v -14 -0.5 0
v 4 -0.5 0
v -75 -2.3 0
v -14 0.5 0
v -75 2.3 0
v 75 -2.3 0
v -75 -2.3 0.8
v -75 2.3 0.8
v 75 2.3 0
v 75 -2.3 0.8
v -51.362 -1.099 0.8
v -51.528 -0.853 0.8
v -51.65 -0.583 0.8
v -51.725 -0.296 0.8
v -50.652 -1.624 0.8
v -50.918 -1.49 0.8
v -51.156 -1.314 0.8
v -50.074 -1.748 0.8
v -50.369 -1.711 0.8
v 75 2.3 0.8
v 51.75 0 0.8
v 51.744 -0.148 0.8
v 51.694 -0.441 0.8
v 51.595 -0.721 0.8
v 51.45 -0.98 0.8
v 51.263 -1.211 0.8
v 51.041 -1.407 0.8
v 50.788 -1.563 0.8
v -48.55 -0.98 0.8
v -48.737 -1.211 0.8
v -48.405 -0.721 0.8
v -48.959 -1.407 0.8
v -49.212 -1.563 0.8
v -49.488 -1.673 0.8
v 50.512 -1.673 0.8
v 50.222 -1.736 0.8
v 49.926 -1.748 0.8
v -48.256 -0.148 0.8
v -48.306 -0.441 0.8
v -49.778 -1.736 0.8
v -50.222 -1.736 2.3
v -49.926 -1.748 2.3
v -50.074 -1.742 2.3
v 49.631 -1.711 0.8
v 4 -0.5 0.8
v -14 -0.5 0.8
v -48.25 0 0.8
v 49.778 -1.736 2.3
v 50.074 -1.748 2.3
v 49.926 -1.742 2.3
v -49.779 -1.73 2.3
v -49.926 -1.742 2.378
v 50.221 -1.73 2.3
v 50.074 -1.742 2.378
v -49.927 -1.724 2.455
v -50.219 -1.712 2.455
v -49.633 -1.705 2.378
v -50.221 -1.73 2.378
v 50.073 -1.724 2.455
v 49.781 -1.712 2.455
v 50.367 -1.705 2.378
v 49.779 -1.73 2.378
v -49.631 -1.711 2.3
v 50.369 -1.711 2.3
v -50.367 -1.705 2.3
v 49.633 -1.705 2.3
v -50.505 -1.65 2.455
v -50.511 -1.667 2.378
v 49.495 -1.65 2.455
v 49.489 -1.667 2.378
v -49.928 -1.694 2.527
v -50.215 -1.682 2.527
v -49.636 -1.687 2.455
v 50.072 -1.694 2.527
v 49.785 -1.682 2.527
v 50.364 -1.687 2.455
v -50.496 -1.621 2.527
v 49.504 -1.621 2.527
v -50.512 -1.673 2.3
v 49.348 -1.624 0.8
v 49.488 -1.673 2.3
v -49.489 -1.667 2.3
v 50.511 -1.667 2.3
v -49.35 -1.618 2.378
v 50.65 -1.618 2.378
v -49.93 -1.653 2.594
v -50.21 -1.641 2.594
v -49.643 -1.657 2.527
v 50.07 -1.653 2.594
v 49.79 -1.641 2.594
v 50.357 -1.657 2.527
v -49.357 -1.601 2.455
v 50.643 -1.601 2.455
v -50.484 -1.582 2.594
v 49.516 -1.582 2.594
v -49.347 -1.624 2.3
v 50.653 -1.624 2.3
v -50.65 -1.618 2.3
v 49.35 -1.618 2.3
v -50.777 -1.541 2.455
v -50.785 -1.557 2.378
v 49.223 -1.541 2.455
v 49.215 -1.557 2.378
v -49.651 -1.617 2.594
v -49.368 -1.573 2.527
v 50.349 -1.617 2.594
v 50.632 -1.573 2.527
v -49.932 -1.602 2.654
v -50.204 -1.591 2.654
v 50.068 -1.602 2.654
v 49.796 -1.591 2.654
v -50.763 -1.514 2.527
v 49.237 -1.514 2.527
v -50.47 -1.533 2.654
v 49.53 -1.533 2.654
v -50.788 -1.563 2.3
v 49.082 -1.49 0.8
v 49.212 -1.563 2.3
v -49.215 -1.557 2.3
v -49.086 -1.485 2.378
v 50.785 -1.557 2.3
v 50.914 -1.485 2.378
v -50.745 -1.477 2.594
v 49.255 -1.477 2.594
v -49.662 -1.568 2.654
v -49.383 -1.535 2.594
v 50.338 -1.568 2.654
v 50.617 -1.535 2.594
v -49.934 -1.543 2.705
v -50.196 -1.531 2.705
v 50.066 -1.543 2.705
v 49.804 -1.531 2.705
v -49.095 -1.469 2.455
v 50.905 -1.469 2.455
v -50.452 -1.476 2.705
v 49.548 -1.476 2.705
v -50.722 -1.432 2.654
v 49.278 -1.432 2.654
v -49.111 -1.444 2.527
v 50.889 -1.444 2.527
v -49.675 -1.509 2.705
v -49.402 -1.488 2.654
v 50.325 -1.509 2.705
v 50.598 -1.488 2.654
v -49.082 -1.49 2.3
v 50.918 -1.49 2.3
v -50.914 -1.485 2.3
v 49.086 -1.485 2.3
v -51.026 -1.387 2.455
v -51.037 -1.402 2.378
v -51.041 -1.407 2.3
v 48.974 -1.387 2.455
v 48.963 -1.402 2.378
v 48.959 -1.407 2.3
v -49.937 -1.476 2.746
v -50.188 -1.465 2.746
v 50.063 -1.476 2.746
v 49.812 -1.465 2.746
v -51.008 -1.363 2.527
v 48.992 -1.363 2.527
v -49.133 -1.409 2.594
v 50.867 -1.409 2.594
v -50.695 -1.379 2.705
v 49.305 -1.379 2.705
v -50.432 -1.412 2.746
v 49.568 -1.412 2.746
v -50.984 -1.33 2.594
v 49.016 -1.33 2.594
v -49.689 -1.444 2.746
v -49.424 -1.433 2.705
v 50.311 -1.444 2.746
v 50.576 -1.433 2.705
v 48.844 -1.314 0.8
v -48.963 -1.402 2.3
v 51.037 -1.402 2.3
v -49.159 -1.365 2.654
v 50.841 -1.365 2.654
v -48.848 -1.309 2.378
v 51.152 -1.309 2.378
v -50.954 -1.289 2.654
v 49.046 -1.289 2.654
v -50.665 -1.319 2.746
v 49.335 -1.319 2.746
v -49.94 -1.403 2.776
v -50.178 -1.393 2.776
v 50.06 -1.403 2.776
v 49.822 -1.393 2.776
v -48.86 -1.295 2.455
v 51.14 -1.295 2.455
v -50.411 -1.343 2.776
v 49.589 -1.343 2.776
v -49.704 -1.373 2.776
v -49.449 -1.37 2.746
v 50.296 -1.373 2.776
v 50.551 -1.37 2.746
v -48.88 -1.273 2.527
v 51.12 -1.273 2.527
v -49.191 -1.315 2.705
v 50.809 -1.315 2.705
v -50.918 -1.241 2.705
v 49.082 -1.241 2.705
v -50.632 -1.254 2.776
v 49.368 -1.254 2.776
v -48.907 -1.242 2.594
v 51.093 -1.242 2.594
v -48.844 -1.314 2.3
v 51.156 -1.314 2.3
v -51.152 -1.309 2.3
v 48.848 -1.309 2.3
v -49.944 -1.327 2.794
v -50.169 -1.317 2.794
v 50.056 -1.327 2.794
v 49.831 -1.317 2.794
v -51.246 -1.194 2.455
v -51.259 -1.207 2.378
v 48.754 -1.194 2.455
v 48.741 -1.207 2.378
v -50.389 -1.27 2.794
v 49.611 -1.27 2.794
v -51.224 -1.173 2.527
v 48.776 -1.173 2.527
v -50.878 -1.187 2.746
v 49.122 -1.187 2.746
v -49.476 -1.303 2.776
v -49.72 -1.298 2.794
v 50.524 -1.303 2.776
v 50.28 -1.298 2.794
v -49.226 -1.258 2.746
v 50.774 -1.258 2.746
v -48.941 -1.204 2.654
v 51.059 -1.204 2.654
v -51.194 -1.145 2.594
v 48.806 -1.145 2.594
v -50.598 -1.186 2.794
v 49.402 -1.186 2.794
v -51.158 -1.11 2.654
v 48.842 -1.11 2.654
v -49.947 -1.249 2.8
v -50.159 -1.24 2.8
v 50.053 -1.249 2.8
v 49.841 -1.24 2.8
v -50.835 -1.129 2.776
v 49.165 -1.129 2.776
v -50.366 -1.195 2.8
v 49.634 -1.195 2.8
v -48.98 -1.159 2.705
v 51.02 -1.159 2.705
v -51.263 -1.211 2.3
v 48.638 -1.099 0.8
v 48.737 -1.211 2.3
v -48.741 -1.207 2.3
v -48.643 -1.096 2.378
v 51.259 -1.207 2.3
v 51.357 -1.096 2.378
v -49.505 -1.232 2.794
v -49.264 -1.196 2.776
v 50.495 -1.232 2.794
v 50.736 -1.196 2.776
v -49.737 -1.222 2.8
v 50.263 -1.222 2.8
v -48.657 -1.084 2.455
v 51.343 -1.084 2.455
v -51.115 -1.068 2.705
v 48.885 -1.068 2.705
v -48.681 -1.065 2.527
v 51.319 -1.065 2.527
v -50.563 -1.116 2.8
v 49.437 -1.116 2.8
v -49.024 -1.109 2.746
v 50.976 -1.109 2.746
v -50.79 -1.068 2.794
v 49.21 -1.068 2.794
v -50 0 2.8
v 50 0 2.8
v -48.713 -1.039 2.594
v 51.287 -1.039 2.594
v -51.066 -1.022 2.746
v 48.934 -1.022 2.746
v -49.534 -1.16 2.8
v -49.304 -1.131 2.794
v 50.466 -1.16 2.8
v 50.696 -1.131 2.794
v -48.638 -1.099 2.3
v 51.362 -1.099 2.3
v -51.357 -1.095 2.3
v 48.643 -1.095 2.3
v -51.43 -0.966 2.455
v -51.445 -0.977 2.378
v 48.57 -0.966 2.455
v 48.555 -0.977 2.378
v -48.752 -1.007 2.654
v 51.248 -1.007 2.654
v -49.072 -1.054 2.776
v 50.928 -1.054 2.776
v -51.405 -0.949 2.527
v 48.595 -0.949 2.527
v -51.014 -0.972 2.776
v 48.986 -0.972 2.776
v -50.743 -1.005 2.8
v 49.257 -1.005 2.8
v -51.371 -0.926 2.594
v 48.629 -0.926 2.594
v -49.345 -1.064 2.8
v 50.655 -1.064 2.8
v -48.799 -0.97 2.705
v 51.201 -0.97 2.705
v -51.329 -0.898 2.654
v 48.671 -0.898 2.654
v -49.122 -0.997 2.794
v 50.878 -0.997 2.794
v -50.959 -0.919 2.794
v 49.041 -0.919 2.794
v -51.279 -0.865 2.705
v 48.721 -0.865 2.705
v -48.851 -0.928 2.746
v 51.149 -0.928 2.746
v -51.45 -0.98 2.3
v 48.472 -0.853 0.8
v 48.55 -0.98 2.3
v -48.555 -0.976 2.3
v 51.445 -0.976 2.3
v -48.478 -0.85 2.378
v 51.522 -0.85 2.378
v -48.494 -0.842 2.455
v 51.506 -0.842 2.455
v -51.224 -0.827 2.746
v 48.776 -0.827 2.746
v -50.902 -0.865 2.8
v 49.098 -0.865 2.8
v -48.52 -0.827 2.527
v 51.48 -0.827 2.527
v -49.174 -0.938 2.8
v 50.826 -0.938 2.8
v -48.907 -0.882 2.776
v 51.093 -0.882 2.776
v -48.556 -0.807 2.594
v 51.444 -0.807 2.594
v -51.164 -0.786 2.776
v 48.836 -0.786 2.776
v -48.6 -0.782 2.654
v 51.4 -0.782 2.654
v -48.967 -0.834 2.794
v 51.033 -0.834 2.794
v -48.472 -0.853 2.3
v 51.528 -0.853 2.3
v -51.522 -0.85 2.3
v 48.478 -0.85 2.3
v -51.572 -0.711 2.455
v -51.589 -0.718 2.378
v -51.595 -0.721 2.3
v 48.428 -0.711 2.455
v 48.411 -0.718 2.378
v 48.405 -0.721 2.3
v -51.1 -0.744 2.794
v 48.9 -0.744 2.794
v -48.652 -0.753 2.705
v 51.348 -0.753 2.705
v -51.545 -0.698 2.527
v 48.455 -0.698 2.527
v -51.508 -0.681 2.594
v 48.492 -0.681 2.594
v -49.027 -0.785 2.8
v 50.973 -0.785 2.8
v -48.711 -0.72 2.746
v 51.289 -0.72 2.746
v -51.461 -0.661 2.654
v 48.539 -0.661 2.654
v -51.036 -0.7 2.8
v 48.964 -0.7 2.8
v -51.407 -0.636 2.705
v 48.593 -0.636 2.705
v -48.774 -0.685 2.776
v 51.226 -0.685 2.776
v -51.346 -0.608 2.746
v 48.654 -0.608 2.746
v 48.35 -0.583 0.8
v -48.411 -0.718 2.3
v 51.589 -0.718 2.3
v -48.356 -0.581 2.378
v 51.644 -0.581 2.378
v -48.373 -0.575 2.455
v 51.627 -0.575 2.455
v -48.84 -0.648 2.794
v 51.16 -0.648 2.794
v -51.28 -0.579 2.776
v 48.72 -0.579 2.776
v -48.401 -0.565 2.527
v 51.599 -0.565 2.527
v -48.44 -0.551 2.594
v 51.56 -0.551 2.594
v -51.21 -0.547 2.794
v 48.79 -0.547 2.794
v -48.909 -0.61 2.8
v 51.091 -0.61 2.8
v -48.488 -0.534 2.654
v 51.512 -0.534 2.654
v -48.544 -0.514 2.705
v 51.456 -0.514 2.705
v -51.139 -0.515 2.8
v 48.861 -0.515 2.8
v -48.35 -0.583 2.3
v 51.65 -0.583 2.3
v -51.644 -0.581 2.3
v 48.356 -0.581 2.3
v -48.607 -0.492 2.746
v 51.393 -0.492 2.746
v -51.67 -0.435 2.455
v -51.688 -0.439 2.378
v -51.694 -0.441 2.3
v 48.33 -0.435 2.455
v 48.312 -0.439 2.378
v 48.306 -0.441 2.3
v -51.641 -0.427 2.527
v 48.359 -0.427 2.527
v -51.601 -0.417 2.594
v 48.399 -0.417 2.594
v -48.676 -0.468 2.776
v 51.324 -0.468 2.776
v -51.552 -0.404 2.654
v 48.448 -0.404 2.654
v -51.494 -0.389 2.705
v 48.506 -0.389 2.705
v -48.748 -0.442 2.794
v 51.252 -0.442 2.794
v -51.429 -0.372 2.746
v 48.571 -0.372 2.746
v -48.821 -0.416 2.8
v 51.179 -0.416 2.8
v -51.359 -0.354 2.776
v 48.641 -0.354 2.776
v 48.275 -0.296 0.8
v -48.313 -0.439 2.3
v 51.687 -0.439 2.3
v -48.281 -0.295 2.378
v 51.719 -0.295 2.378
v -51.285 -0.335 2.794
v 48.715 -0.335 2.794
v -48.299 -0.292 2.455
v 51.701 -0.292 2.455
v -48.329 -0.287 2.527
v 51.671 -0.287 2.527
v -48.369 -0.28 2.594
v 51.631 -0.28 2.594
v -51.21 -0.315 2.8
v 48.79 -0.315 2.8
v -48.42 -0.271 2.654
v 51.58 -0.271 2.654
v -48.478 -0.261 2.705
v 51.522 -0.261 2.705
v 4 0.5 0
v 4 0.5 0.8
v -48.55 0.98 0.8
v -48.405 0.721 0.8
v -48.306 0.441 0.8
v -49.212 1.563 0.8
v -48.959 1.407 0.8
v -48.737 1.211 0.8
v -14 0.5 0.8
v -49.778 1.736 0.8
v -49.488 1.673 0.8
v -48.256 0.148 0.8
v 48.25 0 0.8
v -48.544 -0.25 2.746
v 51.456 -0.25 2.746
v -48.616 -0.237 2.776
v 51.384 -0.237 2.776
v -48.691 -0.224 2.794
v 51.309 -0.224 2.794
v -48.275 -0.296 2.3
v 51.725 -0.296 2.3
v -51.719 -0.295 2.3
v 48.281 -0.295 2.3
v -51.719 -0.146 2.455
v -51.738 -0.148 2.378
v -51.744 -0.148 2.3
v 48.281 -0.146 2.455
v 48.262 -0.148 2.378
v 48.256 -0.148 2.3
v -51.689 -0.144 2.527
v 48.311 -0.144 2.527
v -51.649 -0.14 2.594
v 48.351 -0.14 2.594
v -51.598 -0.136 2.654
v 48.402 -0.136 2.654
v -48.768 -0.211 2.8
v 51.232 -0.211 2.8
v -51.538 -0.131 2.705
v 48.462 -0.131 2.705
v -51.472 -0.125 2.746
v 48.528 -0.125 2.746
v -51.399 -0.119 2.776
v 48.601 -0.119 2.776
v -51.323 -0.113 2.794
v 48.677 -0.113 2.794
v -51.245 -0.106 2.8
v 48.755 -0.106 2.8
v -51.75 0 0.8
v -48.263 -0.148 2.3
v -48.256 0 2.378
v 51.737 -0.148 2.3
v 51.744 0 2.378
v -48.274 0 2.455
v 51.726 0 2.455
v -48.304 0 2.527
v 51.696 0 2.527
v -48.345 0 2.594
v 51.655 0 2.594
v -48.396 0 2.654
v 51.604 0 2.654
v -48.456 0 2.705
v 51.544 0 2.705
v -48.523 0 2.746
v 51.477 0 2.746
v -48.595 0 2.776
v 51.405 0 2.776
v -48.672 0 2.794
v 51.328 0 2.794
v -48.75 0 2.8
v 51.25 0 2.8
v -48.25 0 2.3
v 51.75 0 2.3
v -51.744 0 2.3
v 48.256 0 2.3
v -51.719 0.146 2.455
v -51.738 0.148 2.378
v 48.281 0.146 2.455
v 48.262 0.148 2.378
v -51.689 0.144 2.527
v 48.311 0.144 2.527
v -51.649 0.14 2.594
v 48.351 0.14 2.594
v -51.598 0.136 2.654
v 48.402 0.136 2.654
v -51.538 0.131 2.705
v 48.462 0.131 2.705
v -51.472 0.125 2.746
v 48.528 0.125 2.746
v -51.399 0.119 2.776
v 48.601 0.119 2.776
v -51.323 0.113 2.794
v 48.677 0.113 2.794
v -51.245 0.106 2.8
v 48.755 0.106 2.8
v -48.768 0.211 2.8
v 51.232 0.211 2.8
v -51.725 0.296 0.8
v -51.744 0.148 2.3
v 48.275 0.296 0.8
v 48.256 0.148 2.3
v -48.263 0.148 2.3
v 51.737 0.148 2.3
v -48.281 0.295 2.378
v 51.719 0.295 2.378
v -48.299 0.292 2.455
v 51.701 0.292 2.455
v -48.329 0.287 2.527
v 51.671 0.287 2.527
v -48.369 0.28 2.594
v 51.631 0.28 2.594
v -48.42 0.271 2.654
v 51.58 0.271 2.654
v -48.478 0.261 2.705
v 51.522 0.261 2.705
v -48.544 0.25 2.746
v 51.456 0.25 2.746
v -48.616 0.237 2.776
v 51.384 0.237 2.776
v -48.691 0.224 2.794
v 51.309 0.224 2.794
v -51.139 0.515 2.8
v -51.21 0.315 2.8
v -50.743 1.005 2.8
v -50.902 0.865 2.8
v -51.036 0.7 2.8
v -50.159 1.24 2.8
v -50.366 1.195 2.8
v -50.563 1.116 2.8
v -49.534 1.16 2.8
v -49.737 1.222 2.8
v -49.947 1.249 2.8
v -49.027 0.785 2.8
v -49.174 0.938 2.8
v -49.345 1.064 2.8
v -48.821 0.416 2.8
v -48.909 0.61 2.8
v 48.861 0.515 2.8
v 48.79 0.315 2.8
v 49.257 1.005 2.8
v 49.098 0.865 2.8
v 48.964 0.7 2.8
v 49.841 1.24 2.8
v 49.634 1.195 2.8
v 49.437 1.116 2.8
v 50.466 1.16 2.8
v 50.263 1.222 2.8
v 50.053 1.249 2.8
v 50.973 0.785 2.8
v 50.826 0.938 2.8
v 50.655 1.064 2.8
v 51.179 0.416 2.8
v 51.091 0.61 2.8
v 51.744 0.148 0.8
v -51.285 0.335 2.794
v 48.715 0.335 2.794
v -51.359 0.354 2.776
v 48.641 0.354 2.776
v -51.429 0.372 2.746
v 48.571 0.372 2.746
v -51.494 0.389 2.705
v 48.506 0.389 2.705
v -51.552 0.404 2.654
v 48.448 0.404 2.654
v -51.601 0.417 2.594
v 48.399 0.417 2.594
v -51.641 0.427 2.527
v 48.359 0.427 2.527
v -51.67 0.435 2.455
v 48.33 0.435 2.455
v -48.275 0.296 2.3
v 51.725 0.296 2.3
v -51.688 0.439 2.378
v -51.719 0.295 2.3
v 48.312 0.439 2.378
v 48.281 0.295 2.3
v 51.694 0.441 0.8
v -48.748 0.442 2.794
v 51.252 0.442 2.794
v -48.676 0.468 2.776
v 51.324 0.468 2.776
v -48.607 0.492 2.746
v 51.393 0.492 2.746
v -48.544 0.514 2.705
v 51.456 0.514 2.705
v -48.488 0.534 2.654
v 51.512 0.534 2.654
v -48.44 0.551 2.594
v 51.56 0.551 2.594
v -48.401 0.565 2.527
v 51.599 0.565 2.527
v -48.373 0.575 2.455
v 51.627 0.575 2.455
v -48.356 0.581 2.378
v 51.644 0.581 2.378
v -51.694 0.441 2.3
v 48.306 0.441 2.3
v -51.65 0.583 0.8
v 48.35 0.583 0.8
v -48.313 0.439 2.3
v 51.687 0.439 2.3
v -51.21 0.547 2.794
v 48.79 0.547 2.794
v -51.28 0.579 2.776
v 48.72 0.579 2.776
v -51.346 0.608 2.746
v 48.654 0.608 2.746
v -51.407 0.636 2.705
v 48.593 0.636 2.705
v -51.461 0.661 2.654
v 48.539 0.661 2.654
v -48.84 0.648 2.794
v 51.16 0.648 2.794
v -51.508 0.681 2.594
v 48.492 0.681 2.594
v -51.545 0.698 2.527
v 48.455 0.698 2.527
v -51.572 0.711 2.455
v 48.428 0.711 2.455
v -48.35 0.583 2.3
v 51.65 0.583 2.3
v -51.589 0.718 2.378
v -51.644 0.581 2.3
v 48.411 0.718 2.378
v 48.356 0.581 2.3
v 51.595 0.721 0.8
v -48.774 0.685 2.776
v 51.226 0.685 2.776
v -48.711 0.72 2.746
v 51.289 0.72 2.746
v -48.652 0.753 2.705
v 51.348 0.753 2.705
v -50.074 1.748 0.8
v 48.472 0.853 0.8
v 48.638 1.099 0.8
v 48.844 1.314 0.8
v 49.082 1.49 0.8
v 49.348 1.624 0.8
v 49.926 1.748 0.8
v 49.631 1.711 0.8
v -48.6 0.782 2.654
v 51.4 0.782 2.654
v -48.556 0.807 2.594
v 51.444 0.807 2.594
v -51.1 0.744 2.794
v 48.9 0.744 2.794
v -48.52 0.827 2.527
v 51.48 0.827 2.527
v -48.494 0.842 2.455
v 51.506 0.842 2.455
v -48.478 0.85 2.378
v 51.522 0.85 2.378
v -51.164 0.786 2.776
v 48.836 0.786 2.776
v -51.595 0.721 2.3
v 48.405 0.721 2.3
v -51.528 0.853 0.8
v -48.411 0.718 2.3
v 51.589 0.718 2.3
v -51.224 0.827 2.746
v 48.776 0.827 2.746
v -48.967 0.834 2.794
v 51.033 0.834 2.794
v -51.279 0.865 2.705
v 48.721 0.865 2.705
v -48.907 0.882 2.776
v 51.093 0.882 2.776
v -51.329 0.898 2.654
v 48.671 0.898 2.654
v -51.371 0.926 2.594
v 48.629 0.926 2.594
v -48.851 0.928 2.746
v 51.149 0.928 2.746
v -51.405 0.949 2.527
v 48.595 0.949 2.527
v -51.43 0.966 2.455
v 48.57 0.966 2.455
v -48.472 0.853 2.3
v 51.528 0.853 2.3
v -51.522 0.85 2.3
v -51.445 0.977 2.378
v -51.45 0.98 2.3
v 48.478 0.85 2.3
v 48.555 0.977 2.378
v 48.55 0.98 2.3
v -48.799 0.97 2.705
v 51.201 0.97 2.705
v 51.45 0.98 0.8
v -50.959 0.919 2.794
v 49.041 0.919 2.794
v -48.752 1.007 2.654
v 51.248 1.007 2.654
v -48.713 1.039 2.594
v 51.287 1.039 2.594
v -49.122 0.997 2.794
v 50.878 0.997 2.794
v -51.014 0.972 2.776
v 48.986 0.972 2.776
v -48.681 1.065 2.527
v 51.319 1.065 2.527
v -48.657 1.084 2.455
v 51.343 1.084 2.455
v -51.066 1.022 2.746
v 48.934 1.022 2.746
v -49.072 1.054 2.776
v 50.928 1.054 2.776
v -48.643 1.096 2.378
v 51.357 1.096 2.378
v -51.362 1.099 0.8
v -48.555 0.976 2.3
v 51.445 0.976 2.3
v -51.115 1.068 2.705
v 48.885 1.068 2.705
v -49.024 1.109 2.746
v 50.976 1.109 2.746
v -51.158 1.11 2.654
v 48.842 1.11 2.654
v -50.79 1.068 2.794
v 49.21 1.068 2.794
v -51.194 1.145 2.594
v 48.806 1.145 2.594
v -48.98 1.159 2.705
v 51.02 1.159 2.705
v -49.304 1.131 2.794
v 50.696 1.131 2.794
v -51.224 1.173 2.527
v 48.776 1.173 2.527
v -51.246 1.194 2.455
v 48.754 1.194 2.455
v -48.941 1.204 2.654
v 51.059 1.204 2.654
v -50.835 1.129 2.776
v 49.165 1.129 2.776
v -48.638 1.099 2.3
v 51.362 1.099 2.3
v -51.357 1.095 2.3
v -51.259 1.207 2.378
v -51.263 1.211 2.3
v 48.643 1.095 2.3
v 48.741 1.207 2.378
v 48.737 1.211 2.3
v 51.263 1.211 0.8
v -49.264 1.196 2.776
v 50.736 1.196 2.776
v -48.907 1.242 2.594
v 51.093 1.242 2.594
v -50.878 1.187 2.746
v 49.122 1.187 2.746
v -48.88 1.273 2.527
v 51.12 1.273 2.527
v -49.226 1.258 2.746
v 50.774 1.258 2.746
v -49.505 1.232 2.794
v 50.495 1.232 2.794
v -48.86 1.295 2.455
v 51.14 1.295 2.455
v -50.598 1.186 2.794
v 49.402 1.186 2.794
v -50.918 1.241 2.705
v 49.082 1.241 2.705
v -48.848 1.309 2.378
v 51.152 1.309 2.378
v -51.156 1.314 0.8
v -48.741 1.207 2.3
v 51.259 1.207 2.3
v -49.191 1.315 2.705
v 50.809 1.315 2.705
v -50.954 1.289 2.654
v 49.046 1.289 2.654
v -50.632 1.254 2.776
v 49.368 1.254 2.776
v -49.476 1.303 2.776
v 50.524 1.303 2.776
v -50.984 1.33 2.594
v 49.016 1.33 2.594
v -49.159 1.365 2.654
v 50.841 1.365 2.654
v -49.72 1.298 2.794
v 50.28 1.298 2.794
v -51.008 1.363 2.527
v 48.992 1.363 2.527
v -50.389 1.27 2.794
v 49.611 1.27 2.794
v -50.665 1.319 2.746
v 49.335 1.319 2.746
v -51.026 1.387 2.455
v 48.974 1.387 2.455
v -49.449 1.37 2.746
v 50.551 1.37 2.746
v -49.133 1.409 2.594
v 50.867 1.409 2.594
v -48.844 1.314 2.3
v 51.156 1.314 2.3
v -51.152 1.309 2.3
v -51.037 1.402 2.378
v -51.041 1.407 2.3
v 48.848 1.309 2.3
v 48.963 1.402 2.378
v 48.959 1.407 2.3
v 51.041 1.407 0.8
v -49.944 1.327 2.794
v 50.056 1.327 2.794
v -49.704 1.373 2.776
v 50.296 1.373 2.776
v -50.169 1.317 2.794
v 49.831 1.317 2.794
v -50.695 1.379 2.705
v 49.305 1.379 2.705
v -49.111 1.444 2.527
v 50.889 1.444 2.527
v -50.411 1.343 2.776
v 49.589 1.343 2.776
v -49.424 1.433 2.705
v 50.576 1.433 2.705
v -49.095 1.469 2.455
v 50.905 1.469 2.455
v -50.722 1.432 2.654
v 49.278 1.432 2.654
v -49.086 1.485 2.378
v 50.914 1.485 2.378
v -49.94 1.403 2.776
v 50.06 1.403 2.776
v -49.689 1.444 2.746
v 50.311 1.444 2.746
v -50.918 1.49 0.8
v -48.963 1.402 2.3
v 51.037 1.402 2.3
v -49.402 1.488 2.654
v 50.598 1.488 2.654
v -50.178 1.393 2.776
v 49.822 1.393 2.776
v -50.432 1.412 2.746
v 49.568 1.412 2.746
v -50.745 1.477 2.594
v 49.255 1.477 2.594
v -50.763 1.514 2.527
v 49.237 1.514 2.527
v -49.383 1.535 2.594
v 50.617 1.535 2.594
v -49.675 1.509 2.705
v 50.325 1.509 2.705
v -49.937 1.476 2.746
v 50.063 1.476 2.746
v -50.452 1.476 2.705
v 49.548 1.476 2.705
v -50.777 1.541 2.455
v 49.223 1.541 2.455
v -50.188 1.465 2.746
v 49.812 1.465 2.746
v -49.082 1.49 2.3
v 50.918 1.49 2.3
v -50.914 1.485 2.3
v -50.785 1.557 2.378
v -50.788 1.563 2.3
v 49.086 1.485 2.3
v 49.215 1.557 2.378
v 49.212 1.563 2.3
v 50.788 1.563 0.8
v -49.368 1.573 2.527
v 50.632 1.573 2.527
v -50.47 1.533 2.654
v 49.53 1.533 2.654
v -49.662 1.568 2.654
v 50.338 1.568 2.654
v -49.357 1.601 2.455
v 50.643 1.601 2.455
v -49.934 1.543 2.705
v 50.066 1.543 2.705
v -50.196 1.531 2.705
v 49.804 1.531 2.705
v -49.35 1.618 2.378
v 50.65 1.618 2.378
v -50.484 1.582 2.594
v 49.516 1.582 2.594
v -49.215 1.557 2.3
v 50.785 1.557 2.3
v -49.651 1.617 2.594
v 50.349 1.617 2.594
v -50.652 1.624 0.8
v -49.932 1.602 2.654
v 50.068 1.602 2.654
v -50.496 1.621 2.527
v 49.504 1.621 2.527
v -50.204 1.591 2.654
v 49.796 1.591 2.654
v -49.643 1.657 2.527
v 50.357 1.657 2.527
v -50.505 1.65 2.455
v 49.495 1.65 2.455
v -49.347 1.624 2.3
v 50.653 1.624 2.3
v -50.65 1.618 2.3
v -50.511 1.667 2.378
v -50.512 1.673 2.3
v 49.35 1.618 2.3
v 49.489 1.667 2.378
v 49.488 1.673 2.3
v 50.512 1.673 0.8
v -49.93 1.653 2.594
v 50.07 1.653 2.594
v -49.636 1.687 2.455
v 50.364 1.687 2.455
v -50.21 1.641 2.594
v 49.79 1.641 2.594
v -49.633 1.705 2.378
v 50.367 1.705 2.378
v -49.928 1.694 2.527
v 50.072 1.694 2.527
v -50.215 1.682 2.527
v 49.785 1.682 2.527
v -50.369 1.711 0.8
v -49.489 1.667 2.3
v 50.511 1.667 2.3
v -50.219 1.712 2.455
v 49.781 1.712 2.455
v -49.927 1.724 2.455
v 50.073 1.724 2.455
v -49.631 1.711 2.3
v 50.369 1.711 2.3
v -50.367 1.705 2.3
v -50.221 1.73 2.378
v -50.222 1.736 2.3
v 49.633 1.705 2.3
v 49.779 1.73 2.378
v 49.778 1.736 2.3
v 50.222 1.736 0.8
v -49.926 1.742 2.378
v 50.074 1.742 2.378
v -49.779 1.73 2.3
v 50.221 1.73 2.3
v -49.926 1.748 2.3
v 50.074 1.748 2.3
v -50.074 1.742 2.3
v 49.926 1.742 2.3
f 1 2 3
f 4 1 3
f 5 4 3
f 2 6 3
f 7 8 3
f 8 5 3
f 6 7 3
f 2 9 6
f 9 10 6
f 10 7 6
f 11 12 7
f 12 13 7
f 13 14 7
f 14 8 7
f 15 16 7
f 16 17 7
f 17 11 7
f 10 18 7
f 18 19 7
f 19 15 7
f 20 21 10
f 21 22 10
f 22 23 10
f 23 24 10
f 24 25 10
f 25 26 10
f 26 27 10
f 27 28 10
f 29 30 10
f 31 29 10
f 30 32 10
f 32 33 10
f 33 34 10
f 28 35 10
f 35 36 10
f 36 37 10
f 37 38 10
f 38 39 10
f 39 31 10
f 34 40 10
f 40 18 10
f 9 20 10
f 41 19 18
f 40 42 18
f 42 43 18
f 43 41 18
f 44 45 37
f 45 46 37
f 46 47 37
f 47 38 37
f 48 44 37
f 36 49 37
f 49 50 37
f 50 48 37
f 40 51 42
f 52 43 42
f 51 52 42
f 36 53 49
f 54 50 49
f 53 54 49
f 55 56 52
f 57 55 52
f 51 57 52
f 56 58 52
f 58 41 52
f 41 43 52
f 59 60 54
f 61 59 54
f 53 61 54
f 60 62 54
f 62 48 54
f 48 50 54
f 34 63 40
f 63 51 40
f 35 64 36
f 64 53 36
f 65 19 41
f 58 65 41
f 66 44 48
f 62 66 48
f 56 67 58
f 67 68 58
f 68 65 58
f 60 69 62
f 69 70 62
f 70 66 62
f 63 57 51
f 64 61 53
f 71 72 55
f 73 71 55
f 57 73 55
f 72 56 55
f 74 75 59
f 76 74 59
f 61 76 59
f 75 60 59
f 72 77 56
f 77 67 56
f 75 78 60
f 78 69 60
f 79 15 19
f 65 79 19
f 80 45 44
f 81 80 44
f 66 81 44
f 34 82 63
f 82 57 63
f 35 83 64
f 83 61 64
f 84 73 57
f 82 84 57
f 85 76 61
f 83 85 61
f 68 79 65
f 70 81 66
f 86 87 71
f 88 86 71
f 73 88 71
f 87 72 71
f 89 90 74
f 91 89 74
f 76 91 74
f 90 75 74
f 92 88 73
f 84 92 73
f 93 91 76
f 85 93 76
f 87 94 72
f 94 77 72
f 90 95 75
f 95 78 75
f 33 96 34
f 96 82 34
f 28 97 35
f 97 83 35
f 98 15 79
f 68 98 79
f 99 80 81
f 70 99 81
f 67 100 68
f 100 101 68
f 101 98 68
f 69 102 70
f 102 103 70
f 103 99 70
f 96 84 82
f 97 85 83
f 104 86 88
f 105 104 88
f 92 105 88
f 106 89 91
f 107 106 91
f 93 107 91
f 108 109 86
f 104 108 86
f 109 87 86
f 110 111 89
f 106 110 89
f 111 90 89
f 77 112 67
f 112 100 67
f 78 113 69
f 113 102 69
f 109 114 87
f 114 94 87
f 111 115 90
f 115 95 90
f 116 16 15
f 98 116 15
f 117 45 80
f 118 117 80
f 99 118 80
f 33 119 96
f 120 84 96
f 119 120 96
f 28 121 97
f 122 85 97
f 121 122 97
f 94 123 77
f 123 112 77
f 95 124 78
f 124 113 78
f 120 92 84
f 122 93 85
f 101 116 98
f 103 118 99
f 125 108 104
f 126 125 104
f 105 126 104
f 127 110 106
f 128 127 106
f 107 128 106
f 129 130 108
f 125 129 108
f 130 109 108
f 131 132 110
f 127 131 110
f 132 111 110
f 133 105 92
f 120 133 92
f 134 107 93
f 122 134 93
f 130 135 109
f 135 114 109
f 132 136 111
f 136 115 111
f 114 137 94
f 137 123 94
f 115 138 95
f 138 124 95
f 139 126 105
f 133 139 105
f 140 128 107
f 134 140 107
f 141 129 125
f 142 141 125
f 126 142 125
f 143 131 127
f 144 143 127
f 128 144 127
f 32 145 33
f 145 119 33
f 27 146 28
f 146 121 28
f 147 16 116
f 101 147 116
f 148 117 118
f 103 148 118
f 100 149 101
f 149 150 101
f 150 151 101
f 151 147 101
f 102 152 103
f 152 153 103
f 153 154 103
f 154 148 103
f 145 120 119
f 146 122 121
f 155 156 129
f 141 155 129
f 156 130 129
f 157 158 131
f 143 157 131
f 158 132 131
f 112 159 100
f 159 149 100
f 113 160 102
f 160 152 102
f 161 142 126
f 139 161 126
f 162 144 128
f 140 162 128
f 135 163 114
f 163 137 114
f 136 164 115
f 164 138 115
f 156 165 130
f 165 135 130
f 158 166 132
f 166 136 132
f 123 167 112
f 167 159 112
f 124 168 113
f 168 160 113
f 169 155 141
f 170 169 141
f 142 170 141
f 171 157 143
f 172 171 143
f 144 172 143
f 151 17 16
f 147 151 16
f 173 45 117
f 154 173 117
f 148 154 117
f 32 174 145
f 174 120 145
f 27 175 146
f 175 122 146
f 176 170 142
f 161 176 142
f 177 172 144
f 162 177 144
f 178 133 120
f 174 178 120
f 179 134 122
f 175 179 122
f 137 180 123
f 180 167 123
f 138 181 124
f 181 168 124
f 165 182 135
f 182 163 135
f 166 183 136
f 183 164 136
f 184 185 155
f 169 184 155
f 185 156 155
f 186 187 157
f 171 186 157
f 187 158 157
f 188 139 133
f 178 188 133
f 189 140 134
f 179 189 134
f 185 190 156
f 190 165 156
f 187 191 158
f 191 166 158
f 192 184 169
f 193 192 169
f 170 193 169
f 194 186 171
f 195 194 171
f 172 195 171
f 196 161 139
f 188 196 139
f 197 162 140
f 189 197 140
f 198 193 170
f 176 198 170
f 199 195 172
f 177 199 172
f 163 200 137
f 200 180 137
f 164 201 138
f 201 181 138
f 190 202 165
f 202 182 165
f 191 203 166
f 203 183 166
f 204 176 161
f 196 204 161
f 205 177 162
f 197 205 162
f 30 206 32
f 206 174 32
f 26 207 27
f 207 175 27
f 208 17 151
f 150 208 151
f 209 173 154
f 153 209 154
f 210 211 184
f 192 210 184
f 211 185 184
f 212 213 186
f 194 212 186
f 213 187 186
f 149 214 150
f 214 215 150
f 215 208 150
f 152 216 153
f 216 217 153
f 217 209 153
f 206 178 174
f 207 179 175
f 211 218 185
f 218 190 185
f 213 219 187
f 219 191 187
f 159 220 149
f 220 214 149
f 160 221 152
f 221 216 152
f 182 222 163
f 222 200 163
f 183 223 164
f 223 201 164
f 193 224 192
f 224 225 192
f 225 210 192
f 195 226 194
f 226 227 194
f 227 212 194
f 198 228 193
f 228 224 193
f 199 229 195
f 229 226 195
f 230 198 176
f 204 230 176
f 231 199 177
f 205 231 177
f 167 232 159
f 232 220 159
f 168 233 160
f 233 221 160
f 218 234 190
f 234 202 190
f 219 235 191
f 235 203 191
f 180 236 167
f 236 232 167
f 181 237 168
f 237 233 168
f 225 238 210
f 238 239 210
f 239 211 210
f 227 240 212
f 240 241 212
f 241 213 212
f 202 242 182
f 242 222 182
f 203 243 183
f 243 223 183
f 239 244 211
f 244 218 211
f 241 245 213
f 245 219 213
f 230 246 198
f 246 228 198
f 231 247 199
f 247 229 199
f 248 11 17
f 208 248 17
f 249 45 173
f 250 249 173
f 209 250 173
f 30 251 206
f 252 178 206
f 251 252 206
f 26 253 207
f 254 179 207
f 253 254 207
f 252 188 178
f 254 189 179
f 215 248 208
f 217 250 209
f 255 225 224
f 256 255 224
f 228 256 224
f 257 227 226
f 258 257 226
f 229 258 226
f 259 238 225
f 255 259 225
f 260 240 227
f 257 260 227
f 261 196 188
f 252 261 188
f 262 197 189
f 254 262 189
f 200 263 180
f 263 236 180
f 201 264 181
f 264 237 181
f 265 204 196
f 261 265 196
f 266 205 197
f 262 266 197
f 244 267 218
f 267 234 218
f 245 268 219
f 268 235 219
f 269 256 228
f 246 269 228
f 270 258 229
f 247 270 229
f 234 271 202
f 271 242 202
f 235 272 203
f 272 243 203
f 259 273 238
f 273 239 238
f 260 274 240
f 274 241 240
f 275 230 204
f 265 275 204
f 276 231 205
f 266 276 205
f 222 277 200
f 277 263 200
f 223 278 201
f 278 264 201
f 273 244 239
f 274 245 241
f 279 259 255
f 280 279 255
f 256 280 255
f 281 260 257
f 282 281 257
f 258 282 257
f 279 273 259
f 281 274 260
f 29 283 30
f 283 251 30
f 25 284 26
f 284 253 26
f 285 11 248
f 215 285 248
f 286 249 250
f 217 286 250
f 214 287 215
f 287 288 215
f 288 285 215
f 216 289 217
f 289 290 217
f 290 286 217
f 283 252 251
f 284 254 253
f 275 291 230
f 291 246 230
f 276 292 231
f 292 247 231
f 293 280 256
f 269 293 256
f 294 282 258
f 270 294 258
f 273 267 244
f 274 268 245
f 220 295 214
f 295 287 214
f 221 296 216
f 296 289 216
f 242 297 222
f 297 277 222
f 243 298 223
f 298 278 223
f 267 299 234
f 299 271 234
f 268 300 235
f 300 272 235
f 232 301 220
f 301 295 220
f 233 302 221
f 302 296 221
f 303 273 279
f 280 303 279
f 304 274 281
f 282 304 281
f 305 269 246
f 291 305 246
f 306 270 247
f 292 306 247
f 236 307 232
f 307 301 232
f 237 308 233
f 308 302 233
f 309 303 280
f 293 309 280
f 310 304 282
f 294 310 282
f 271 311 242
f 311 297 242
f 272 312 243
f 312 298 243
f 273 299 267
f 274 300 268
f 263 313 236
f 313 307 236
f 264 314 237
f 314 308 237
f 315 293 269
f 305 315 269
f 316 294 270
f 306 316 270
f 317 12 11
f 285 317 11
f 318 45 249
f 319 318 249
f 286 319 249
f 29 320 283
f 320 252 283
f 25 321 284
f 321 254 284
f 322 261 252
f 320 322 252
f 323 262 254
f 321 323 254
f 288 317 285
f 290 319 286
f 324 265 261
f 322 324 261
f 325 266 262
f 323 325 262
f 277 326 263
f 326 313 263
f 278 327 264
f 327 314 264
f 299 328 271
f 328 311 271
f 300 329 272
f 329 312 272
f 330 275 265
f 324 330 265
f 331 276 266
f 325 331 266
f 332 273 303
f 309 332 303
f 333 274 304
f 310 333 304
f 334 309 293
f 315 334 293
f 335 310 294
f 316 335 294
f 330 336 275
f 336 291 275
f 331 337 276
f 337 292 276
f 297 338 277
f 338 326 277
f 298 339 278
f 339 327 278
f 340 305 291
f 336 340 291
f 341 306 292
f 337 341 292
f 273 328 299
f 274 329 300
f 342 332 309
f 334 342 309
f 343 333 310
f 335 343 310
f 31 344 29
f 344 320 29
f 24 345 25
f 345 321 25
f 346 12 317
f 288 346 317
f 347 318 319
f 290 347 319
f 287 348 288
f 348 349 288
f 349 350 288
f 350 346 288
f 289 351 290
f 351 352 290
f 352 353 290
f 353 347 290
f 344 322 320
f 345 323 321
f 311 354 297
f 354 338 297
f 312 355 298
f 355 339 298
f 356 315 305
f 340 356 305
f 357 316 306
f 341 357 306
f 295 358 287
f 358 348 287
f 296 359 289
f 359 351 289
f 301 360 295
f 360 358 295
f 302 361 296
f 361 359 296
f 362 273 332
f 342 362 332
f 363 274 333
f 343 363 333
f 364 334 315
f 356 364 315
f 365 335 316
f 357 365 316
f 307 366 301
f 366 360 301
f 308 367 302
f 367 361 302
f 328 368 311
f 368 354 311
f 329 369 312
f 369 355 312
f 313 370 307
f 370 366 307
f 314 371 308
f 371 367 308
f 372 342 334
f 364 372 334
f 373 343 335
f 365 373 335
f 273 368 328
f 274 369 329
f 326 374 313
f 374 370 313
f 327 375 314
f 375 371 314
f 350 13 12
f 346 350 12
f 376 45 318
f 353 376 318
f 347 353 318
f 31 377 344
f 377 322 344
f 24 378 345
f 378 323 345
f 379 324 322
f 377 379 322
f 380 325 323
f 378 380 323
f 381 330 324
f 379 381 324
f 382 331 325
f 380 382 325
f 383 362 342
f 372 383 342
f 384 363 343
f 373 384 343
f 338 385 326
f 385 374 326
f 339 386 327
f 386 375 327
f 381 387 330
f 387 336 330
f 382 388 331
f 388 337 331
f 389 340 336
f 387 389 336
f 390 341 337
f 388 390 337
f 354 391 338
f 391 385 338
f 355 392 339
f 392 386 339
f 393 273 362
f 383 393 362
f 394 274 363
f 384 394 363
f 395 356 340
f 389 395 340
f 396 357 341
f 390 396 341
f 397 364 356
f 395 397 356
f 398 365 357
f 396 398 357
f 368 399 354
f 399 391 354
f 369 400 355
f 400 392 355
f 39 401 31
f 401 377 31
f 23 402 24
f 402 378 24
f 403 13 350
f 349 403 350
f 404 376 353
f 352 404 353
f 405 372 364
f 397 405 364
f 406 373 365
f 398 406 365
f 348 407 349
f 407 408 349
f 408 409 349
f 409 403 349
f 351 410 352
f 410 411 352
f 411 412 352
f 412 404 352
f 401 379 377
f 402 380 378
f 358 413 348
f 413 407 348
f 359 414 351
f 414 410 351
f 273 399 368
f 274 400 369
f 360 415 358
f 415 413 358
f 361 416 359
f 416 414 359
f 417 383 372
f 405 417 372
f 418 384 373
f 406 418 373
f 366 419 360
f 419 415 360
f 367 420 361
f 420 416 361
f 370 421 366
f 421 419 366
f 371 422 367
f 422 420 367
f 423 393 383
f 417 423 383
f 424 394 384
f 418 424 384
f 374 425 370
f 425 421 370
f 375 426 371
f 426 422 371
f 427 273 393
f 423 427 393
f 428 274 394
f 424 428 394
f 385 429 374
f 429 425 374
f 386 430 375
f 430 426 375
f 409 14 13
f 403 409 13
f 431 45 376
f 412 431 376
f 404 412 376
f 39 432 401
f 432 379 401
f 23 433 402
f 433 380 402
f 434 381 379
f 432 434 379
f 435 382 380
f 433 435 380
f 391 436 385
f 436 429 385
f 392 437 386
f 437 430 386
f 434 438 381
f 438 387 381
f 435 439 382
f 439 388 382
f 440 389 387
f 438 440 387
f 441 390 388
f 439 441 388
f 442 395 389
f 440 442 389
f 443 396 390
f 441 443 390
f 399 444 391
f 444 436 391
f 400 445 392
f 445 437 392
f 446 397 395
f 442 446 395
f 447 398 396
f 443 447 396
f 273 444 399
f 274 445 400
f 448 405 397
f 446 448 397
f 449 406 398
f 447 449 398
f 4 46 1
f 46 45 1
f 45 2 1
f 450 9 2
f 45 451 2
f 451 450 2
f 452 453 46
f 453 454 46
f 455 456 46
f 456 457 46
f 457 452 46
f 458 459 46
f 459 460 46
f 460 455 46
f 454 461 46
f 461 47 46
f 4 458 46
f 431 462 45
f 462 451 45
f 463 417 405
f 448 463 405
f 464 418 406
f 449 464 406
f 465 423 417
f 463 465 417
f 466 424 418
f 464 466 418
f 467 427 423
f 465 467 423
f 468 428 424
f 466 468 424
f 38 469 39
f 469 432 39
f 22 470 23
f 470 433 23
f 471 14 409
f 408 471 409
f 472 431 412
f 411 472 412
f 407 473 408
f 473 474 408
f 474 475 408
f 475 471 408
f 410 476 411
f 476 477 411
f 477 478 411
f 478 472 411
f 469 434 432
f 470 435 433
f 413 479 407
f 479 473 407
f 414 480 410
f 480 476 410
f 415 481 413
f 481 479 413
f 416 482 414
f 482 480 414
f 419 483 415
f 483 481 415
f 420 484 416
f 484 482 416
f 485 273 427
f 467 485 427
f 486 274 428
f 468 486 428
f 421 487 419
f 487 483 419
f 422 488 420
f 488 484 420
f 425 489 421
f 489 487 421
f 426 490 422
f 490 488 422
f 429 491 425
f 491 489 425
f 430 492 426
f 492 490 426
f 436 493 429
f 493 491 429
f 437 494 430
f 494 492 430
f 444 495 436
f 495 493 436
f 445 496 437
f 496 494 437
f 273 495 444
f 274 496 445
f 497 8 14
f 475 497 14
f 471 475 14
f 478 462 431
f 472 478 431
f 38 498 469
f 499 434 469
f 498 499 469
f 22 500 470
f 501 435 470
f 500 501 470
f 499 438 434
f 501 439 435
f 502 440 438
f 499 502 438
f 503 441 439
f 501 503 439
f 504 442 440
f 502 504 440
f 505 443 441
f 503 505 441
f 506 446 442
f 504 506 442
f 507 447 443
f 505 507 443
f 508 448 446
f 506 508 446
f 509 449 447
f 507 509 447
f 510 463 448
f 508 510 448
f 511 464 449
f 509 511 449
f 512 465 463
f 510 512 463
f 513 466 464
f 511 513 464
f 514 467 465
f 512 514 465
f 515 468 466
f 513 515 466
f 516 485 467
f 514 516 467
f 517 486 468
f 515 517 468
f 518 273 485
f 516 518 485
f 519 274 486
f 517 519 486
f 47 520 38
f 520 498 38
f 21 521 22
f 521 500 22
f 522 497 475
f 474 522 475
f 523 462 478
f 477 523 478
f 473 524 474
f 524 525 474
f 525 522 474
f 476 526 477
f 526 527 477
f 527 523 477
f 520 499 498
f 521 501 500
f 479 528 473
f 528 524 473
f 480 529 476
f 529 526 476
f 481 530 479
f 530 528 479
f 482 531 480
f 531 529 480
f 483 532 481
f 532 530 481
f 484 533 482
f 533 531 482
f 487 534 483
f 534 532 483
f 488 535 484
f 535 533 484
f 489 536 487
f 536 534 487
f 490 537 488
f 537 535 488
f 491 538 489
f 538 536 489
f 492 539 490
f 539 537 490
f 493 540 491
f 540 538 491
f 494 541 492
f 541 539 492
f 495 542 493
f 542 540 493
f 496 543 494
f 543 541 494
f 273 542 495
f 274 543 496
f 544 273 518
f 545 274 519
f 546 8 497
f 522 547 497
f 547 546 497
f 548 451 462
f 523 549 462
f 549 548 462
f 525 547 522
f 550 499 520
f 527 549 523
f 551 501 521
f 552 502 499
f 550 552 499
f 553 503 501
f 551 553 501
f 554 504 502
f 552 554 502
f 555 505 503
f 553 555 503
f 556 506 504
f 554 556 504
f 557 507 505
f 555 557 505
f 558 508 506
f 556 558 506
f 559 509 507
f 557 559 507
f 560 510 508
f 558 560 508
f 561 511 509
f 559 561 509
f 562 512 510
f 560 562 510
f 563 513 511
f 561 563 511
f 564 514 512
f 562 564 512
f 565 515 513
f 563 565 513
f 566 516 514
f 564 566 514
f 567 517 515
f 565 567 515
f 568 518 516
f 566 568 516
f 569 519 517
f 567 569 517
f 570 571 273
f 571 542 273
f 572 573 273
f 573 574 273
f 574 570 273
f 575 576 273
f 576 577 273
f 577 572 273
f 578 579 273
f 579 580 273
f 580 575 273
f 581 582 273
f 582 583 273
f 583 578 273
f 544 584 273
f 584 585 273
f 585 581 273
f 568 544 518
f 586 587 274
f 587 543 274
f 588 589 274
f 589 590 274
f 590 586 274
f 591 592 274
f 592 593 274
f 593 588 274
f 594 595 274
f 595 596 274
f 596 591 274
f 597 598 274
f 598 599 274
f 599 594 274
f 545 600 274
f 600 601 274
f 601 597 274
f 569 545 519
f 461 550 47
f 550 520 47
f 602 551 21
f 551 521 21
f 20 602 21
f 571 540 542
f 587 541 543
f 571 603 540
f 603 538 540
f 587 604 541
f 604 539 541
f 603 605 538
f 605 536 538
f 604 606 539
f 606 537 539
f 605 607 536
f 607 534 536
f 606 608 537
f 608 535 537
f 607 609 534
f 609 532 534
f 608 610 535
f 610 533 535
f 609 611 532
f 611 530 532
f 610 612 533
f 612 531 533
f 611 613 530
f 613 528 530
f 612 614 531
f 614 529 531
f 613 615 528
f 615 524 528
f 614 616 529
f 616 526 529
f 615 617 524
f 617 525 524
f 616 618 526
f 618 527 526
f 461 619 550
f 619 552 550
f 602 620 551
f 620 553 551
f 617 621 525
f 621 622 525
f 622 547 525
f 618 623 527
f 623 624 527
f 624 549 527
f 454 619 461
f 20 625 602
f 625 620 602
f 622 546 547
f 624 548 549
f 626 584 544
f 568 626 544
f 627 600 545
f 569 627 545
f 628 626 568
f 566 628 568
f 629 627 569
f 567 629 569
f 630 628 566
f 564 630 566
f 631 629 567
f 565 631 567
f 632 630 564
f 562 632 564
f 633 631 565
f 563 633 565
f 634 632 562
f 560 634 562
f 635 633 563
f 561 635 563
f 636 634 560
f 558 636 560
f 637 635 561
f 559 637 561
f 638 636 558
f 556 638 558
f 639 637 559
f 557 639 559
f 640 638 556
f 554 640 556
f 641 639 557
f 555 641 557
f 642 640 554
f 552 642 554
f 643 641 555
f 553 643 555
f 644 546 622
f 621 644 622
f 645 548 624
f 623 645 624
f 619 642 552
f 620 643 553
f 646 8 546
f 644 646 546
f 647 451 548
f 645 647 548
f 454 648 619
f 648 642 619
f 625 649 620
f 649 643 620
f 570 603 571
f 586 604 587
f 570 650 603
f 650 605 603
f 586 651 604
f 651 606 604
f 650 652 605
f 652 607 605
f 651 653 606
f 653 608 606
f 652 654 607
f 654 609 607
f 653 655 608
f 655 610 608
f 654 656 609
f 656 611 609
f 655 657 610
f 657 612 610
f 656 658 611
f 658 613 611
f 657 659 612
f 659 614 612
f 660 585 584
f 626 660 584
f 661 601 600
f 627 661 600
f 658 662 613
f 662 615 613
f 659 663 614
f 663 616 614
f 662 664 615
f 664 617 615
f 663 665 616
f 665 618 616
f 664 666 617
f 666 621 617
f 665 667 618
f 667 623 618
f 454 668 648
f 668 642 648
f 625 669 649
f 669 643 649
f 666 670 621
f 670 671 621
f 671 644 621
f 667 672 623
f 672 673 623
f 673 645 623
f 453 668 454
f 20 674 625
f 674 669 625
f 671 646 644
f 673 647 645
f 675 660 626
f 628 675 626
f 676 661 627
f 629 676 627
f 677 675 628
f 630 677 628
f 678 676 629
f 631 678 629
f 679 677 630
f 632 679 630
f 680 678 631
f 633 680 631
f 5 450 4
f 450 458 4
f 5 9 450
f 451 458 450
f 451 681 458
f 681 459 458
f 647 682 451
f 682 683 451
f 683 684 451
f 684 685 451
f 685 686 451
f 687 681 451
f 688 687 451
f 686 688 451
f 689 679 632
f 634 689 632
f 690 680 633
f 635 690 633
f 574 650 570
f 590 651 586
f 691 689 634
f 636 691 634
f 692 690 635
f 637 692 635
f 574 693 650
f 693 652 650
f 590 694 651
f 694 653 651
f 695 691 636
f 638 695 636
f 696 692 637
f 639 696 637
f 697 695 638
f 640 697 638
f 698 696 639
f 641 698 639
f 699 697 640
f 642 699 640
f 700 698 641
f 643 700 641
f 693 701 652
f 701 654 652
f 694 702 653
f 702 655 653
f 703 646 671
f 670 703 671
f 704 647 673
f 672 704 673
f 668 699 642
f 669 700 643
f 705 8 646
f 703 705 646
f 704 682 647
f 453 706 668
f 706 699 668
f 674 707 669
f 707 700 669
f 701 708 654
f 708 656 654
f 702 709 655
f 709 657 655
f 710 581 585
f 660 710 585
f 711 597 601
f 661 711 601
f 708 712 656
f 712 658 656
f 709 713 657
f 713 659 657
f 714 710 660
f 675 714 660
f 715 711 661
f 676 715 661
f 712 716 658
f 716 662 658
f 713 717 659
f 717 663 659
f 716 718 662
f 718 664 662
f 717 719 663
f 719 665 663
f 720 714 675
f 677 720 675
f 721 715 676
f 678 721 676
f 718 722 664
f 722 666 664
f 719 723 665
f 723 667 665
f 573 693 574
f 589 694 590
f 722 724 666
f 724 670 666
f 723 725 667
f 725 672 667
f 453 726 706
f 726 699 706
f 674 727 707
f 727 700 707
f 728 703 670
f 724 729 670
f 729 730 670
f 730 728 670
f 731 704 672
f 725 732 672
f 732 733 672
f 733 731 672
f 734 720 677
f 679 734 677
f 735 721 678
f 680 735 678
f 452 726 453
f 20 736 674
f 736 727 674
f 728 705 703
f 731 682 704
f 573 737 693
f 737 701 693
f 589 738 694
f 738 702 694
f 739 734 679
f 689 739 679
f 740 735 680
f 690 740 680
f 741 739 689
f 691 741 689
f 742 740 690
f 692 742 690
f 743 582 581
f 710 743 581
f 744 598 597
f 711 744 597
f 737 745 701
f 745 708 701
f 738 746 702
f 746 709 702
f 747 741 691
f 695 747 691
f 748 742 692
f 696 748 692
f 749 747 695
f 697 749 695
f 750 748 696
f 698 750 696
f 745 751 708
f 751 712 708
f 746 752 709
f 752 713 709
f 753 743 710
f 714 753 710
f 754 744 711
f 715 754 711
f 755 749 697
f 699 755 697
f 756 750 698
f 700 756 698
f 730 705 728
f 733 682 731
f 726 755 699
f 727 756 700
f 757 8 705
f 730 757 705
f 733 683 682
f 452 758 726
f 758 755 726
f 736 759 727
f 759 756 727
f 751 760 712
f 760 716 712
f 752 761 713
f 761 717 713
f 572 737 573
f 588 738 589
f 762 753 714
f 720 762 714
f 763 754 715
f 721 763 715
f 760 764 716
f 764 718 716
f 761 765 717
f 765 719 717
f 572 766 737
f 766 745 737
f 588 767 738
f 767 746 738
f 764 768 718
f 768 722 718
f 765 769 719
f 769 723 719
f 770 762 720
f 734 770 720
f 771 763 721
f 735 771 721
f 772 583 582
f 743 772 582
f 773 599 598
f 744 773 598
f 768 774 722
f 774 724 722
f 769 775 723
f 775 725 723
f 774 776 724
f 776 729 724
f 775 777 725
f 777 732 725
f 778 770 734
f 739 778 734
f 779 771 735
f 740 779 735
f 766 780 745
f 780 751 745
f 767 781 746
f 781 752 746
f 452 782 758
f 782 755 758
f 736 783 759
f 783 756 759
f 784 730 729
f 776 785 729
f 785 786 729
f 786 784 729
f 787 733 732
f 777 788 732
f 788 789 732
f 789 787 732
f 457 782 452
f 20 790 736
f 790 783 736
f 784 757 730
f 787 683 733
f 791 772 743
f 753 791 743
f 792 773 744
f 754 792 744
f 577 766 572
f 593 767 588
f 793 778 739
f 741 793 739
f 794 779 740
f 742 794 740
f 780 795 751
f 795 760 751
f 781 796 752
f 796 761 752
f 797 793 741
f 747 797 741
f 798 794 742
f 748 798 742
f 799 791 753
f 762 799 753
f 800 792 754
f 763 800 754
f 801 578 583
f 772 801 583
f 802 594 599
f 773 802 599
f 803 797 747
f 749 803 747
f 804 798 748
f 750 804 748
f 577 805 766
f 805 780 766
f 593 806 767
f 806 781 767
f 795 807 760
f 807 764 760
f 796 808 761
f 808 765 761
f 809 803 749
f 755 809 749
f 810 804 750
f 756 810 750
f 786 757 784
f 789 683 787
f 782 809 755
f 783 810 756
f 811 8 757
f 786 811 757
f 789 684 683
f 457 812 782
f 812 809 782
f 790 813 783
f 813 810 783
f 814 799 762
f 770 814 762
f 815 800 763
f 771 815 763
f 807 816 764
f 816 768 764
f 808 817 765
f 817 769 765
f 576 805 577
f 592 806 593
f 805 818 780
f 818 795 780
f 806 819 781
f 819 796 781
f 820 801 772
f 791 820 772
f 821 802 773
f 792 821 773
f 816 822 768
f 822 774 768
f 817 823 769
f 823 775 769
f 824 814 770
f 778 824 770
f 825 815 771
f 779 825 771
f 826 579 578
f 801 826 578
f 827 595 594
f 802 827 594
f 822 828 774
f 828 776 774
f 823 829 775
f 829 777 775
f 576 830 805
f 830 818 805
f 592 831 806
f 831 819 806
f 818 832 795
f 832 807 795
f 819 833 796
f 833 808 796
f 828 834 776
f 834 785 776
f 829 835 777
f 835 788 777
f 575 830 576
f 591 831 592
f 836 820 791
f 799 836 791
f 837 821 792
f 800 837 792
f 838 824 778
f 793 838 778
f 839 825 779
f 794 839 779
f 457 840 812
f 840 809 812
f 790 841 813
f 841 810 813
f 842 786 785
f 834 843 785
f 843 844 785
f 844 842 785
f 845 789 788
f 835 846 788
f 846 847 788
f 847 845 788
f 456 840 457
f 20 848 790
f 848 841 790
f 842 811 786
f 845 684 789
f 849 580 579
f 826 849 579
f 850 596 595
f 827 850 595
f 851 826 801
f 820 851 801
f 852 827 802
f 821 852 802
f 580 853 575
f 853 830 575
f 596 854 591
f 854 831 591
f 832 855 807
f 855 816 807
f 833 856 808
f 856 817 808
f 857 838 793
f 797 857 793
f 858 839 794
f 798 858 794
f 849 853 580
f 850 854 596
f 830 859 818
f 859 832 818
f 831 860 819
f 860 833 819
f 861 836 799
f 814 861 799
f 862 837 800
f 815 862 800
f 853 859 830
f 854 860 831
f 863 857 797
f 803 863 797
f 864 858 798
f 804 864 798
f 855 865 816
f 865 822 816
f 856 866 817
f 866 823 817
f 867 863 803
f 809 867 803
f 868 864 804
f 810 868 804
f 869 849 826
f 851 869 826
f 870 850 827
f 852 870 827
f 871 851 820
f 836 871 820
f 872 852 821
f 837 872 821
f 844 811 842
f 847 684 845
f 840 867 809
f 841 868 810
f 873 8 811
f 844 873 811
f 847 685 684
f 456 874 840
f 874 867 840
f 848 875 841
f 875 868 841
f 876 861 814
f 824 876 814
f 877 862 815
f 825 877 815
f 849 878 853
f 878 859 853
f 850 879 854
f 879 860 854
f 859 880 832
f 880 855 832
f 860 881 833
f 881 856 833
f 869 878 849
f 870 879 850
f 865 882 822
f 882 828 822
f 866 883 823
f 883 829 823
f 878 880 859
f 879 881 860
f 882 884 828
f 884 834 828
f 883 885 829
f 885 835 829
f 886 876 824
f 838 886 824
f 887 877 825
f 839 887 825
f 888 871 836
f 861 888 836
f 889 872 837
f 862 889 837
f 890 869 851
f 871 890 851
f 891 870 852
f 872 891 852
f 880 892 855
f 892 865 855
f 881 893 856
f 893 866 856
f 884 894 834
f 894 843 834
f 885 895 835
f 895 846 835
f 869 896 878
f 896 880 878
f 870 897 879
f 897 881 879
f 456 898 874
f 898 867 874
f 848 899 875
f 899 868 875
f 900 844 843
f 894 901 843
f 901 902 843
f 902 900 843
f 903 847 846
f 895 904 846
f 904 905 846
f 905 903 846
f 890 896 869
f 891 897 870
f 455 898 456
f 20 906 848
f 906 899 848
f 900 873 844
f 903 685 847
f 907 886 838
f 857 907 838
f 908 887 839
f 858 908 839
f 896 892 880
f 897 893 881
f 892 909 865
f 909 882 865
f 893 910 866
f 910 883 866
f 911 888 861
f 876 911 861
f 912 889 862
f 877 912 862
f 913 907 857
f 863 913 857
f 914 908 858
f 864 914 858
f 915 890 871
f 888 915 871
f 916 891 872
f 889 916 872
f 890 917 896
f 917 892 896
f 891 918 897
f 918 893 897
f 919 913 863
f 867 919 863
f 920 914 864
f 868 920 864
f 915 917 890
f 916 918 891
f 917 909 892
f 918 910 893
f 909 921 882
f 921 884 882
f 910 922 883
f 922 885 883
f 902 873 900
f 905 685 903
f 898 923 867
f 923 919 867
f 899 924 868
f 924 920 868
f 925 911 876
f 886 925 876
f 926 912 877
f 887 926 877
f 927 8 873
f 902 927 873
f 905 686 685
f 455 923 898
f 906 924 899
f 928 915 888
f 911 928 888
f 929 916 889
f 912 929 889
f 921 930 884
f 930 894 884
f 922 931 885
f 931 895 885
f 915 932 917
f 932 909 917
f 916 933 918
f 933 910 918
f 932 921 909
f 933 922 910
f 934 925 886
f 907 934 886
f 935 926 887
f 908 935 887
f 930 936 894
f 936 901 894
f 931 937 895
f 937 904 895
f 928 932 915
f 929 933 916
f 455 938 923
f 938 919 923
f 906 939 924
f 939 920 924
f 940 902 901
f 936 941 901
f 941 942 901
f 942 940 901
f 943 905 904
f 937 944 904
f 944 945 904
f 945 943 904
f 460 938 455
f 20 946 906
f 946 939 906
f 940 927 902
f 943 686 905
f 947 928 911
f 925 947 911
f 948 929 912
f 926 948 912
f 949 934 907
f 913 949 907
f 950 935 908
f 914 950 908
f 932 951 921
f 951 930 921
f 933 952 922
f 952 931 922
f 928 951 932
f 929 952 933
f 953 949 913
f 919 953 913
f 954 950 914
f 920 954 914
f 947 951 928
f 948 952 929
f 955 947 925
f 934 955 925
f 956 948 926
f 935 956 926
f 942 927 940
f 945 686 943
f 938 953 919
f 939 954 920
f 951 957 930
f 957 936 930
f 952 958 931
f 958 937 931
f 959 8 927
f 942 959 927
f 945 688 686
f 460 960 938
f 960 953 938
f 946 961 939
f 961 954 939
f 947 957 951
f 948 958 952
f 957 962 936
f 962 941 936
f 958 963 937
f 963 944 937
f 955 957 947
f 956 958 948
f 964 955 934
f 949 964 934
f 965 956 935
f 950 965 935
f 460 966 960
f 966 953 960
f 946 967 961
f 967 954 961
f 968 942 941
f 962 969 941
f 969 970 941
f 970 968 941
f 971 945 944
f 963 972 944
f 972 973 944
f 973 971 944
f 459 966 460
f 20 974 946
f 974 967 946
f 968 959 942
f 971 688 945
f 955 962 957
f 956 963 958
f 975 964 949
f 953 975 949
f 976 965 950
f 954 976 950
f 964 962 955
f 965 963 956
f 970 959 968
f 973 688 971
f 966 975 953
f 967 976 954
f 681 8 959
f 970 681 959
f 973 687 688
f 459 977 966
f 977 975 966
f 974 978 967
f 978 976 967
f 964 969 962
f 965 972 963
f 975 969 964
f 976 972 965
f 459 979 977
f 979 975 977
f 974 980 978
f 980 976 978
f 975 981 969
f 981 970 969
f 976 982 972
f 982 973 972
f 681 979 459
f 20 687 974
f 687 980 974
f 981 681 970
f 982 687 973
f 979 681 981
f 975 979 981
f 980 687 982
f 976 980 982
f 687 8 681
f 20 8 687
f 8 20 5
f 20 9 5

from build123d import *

# Parameters (mm, degrees)
SKICA2_W                = 150
SKICA2_H                = 4.6
SKICA2_W_2              = 18
SKICA2_H_2              = 1
P_IDAT_VYSUNUT_M2_DEPTH = 0.8
SKICA3_R                = 1.75
P_IDAT_VYSUNUT_M3_DEPTH = 2
ZAOBLIT1_R              = 0.5


with BuildPart() as part:
    # Skica2 → Přidat vysunutím2 (new body)
    with BuildSketch(Plane.XY):
        Rectangle(SKICA2_W, SKICA2_H)
        with Locations((-5, 0)):
            Rectangle(SKICA2_W_2, SKICA2_H_2, mode=Mode.SUBTRACT)
    extrude(amount=P_IDAT_VYSUNUT_M2_DEPTH)

    # Skica3 → Přidat vysunutím3 (add)
    with BuildSketch(Plane.XY.offset(0.8)):
        with Locations((-50, 0)):
            Circle(SKICA3_R)
        with Locations((50, 0)):
            Circle(SKICA3_R)
    extrude(amount=P_IDAT_VYSUNUT_M3_DEPTH)

    # Zaoblit1
    zaoblit1_edges = [part.edges().sort_by_distance(p)[0] for p in [
        (-51.75, 0, 2.8),
        (48.25, 0, 2.8),
    ]]
    fillet(zaoblit1_edges, radius=ZAOBLIT1_R)


solid = part.part
